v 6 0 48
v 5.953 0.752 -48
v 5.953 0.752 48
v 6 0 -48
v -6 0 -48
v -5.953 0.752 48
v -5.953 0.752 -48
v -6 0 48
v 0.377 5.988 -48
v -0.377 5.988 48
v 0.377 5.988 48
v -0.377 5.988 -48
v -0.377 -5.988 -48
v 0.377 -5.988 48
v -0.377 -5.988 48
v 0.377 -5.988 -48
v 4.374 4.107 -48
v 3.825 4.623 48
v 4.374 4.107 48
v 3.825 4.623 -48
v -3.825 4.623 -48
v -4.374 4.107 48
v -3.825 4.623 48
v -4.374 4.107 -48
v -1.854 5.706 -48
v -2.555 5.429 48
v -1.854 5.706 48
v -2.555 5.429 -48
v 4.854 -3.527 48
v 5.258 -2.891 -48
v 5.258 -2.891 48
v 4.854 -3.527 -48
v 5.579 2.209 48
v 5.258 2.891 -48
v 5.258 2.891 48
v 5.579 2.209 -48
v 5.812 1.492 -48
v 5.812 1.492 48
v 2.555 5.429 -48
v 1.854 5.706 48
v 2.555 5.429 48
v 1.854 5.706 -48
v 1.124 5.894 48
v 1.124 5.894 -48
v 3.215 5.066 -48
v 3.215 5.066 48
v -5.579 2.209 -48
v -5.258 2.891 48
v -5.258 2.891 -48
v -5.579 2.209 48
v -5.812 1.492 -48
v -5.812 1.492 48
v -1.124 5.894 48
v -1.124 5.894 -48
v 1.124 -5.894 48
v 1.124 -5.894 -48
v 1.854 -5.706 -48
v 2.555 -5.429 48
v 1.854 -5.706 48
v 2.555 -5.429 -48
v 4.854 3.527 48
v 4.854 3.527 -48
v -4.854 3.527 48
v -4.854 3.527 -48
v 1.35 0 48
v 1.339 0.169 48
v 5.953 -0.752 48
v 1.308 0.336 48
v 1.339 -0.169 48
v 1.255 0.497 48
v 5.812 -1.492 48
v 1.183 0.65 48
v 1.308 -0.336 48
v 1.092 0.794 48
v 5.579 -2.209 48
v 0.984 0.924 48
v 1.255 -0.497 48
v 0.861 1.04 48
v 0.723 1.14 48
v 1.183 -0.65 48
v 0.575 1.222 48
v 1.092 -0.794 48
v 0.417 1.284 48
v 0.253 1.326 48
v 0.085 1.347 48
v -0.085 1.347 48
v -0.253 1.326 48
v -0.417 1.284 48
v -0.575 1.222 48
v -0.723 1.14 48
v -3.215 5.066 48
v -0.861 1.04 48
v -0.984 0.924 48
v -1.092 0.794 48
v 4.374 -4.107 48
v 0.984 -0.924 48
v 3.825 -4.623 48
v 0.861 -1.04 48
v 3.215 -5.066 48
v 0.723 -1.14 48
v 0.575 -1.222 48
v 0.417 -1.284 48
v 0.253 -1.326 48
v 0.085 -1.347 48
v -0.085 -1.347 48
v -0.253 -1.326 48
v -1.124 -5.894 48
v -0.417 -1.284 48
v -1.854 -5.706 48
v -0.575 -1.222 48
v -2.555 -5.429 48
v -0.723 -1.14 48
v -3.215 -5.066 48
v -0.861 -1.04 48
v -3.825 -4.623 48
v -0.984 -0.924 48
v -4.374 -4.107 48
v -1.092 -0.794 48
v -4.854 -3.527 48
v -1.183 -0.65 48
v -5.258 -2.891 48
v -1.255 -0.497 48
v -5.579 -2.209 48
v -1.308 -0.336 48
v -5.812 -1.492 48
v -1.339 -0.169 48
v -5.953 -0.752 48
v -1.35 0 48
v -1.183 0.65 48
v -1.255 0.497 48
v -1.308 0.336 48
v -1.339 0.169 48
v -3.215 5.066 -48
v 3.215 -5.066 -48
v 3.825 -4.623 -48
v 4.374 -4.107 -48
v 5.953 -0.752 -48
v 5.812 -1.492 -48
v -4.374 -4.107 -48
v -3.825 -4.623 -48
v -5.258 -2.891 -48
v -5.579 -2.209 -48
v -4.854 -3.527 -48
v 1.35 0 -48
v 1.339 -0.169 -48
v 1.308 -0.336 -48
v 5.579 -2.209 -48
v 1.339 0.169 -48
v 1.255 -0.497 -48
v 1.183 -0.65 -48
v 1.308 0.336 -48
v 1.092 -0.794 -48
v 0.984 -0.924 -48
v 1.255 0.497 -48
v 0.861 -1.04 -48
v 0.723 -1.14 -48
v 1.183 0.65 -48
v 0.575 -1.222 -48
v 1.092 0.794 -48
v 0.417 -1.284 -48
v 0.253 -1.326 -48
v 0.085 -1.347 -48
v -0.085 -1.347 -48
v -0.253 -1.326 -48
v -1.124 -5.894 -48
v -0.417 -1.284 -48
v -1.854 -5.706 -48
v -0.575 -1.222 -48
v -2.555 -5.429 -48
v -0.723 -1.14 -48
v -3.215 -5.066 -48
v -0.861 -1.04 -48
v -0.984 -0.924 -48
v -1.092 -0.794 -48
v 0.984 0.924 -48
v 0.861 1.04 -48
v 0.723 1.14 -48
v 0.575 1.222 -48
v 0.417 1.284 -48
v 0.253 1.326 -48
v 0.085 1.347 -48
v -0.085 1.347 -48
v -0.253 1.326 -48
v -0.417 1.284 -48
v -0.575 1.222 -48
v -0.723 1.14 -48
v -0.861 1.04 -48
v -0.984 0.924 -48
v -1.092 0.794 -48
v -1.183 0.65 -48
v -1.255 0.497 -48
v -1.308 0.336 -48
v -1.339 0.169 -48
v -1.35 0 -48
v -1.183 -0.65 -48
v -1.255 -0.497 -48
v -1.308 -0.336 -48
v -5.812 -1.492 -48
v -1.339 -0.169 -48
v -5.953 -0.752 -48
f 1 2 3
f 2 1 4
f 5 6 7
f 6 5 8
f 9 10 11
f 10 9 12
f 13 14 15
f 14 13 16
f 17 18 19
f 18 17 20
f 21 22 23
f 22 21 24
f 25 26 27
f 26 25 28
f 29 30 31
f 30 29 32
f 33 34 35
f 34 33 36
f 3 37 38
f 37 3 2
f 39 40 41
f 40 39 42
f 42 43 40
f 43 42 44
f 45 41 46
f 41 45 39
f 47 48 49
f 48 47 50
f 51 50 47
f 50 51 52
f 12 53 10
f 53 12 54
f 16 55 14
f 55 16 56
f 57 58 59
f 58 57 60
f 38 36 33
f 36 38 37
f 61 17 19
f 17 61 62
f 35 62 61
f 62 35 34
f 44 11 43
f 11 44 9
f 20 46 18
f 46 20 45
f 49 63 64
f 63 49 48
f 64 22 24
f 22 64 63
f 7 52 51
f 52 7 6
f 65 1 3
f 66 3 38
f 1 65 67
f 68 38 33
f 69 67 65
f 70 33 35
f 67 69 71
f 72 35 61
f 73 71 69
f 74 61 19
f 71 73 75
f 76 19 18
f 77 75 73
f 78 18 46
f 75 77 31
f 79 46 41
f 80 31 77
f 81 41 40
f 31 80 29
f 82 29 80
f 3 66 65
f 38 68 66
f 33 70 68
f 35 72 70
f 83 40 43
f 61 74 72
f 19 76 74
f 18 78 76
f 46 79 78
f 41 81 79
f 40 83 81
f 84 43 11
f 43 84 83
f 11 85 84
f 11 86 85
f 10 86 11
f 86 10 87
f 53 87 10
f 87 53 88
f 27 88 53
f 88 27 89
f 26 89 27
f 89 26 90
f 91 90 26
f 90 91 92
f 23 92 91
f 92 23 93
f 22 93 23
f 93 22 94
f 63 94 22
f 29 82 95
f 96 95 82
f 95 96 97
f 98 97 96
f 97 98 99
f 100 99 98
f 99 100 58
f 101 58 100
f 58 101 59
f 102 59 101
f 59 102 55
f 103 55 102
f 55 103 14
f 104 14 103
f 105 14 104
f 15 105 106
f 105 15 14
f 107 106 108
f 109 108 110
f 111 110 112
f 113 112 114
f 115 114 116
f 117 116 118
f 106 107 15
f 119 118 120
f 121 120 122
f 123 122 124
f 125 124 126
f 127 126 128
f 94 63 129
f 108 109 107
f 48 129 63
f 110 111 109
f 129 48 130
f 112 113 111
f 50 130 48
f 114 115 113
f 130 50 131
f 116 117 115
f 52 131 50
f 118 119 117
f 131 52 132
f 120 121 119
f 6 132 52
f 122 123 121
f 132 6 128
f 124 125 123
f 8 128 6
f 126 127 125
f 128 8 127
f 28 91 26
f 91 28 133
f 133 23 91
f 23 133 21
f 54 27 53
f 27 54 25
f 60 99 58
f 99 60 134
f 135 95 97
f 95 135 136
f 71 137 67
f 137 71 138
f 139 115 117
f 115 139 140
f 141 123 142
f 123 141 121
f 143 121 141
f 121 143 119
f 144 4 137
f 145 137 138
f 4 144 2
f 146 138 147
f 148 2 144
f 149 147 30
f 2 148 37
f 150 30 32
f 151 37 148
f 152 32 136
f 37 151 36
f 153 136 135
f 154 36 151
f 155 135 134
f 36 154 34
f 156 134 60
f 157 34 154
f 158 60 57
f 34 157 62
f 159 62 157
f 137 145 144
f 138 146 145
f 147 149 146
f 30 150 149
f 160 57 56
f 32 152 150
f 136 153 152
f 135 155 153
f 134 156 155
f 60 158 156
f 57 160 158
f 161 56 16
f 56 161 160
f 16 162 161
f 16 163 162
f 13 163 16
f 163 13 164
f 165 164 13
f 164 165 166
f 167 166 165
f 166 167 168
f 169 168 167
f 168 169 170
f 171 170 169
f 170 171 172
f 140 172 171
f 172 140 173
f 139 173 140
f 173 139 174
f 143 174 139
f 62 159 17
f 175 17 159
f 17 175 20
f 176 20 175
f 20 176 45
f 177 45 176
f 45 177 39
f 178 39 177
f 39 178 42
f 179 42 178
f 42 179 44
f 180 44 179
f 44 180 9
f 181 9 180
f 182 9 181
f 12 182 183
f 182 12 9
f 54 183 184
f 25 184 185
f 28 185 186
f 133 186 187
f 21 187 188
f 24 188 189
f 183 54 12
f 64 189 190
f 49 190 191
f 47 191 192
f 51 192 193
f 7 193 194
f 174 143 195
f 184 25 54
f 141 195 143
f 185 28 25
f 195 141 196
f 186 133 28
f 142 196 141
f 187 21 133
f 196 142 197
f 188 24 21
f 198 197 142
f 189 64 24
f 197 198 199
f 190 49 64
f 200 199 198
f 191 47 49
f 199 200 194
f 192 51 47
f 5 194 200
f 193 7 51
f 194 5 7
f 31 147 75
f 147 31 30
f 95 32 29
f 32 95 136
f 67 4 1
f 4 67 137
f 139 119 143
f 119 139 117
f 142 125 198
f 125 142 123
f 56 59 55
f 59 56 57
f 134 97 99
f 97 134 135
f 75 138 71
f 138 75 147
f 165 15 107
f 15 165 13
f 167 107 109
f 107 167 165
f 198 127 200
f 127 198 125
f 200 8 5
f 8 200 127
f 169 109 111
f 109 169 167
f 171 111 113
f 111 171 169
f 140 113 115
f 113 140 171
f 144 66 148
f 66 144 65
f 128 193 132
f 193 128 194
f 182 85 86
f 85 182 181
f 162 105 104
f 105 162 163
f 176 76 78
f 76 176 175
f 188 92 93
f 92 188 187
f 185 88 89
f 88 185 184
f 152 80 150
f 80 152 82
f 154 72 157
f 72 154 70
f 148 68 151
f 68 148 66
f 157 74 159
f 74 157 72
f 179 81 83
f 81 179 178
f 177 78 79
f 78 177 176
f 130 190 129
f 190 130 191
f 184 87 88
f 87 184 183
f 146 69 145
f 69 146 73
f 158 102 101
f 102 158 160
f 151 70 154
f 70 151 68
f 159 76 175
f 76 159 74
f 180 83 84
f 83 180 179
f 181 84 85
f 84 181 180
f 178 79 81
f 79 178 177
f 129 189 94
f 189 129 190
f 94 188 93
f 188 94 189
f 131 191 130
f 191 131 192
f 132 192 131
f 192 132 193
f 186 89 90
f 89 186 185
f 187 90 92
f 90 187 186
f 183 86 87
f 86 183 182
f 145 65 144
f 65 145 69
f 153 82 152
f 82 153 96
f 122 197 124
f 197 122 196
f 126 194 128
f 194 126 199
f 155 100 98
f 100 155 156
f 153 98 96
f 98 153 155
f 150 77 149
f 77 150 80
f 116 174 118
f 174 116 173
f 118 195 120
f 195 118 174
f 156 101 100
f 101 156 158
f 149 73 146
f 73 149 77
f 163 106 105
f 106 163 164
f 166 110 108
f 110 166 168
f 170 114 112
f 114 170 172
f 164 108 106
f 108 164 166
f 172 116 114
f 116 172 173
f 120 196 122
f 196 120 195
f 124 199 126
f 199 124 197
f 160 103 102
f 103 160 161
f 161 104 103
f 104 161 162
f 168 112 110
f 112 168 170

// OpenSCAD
$fn = 50;


difference() {
	union() {
		translate(v = [0, 0, -48.0000000000]) {
			cylinder(h = 96, r = 6.0000000000);
		}
	}
	union() {
		translate(v = [0, 0, -100.0000000000]) {
			cylinder(h = 200, r = 1.3500000000);
		}
	}
}
